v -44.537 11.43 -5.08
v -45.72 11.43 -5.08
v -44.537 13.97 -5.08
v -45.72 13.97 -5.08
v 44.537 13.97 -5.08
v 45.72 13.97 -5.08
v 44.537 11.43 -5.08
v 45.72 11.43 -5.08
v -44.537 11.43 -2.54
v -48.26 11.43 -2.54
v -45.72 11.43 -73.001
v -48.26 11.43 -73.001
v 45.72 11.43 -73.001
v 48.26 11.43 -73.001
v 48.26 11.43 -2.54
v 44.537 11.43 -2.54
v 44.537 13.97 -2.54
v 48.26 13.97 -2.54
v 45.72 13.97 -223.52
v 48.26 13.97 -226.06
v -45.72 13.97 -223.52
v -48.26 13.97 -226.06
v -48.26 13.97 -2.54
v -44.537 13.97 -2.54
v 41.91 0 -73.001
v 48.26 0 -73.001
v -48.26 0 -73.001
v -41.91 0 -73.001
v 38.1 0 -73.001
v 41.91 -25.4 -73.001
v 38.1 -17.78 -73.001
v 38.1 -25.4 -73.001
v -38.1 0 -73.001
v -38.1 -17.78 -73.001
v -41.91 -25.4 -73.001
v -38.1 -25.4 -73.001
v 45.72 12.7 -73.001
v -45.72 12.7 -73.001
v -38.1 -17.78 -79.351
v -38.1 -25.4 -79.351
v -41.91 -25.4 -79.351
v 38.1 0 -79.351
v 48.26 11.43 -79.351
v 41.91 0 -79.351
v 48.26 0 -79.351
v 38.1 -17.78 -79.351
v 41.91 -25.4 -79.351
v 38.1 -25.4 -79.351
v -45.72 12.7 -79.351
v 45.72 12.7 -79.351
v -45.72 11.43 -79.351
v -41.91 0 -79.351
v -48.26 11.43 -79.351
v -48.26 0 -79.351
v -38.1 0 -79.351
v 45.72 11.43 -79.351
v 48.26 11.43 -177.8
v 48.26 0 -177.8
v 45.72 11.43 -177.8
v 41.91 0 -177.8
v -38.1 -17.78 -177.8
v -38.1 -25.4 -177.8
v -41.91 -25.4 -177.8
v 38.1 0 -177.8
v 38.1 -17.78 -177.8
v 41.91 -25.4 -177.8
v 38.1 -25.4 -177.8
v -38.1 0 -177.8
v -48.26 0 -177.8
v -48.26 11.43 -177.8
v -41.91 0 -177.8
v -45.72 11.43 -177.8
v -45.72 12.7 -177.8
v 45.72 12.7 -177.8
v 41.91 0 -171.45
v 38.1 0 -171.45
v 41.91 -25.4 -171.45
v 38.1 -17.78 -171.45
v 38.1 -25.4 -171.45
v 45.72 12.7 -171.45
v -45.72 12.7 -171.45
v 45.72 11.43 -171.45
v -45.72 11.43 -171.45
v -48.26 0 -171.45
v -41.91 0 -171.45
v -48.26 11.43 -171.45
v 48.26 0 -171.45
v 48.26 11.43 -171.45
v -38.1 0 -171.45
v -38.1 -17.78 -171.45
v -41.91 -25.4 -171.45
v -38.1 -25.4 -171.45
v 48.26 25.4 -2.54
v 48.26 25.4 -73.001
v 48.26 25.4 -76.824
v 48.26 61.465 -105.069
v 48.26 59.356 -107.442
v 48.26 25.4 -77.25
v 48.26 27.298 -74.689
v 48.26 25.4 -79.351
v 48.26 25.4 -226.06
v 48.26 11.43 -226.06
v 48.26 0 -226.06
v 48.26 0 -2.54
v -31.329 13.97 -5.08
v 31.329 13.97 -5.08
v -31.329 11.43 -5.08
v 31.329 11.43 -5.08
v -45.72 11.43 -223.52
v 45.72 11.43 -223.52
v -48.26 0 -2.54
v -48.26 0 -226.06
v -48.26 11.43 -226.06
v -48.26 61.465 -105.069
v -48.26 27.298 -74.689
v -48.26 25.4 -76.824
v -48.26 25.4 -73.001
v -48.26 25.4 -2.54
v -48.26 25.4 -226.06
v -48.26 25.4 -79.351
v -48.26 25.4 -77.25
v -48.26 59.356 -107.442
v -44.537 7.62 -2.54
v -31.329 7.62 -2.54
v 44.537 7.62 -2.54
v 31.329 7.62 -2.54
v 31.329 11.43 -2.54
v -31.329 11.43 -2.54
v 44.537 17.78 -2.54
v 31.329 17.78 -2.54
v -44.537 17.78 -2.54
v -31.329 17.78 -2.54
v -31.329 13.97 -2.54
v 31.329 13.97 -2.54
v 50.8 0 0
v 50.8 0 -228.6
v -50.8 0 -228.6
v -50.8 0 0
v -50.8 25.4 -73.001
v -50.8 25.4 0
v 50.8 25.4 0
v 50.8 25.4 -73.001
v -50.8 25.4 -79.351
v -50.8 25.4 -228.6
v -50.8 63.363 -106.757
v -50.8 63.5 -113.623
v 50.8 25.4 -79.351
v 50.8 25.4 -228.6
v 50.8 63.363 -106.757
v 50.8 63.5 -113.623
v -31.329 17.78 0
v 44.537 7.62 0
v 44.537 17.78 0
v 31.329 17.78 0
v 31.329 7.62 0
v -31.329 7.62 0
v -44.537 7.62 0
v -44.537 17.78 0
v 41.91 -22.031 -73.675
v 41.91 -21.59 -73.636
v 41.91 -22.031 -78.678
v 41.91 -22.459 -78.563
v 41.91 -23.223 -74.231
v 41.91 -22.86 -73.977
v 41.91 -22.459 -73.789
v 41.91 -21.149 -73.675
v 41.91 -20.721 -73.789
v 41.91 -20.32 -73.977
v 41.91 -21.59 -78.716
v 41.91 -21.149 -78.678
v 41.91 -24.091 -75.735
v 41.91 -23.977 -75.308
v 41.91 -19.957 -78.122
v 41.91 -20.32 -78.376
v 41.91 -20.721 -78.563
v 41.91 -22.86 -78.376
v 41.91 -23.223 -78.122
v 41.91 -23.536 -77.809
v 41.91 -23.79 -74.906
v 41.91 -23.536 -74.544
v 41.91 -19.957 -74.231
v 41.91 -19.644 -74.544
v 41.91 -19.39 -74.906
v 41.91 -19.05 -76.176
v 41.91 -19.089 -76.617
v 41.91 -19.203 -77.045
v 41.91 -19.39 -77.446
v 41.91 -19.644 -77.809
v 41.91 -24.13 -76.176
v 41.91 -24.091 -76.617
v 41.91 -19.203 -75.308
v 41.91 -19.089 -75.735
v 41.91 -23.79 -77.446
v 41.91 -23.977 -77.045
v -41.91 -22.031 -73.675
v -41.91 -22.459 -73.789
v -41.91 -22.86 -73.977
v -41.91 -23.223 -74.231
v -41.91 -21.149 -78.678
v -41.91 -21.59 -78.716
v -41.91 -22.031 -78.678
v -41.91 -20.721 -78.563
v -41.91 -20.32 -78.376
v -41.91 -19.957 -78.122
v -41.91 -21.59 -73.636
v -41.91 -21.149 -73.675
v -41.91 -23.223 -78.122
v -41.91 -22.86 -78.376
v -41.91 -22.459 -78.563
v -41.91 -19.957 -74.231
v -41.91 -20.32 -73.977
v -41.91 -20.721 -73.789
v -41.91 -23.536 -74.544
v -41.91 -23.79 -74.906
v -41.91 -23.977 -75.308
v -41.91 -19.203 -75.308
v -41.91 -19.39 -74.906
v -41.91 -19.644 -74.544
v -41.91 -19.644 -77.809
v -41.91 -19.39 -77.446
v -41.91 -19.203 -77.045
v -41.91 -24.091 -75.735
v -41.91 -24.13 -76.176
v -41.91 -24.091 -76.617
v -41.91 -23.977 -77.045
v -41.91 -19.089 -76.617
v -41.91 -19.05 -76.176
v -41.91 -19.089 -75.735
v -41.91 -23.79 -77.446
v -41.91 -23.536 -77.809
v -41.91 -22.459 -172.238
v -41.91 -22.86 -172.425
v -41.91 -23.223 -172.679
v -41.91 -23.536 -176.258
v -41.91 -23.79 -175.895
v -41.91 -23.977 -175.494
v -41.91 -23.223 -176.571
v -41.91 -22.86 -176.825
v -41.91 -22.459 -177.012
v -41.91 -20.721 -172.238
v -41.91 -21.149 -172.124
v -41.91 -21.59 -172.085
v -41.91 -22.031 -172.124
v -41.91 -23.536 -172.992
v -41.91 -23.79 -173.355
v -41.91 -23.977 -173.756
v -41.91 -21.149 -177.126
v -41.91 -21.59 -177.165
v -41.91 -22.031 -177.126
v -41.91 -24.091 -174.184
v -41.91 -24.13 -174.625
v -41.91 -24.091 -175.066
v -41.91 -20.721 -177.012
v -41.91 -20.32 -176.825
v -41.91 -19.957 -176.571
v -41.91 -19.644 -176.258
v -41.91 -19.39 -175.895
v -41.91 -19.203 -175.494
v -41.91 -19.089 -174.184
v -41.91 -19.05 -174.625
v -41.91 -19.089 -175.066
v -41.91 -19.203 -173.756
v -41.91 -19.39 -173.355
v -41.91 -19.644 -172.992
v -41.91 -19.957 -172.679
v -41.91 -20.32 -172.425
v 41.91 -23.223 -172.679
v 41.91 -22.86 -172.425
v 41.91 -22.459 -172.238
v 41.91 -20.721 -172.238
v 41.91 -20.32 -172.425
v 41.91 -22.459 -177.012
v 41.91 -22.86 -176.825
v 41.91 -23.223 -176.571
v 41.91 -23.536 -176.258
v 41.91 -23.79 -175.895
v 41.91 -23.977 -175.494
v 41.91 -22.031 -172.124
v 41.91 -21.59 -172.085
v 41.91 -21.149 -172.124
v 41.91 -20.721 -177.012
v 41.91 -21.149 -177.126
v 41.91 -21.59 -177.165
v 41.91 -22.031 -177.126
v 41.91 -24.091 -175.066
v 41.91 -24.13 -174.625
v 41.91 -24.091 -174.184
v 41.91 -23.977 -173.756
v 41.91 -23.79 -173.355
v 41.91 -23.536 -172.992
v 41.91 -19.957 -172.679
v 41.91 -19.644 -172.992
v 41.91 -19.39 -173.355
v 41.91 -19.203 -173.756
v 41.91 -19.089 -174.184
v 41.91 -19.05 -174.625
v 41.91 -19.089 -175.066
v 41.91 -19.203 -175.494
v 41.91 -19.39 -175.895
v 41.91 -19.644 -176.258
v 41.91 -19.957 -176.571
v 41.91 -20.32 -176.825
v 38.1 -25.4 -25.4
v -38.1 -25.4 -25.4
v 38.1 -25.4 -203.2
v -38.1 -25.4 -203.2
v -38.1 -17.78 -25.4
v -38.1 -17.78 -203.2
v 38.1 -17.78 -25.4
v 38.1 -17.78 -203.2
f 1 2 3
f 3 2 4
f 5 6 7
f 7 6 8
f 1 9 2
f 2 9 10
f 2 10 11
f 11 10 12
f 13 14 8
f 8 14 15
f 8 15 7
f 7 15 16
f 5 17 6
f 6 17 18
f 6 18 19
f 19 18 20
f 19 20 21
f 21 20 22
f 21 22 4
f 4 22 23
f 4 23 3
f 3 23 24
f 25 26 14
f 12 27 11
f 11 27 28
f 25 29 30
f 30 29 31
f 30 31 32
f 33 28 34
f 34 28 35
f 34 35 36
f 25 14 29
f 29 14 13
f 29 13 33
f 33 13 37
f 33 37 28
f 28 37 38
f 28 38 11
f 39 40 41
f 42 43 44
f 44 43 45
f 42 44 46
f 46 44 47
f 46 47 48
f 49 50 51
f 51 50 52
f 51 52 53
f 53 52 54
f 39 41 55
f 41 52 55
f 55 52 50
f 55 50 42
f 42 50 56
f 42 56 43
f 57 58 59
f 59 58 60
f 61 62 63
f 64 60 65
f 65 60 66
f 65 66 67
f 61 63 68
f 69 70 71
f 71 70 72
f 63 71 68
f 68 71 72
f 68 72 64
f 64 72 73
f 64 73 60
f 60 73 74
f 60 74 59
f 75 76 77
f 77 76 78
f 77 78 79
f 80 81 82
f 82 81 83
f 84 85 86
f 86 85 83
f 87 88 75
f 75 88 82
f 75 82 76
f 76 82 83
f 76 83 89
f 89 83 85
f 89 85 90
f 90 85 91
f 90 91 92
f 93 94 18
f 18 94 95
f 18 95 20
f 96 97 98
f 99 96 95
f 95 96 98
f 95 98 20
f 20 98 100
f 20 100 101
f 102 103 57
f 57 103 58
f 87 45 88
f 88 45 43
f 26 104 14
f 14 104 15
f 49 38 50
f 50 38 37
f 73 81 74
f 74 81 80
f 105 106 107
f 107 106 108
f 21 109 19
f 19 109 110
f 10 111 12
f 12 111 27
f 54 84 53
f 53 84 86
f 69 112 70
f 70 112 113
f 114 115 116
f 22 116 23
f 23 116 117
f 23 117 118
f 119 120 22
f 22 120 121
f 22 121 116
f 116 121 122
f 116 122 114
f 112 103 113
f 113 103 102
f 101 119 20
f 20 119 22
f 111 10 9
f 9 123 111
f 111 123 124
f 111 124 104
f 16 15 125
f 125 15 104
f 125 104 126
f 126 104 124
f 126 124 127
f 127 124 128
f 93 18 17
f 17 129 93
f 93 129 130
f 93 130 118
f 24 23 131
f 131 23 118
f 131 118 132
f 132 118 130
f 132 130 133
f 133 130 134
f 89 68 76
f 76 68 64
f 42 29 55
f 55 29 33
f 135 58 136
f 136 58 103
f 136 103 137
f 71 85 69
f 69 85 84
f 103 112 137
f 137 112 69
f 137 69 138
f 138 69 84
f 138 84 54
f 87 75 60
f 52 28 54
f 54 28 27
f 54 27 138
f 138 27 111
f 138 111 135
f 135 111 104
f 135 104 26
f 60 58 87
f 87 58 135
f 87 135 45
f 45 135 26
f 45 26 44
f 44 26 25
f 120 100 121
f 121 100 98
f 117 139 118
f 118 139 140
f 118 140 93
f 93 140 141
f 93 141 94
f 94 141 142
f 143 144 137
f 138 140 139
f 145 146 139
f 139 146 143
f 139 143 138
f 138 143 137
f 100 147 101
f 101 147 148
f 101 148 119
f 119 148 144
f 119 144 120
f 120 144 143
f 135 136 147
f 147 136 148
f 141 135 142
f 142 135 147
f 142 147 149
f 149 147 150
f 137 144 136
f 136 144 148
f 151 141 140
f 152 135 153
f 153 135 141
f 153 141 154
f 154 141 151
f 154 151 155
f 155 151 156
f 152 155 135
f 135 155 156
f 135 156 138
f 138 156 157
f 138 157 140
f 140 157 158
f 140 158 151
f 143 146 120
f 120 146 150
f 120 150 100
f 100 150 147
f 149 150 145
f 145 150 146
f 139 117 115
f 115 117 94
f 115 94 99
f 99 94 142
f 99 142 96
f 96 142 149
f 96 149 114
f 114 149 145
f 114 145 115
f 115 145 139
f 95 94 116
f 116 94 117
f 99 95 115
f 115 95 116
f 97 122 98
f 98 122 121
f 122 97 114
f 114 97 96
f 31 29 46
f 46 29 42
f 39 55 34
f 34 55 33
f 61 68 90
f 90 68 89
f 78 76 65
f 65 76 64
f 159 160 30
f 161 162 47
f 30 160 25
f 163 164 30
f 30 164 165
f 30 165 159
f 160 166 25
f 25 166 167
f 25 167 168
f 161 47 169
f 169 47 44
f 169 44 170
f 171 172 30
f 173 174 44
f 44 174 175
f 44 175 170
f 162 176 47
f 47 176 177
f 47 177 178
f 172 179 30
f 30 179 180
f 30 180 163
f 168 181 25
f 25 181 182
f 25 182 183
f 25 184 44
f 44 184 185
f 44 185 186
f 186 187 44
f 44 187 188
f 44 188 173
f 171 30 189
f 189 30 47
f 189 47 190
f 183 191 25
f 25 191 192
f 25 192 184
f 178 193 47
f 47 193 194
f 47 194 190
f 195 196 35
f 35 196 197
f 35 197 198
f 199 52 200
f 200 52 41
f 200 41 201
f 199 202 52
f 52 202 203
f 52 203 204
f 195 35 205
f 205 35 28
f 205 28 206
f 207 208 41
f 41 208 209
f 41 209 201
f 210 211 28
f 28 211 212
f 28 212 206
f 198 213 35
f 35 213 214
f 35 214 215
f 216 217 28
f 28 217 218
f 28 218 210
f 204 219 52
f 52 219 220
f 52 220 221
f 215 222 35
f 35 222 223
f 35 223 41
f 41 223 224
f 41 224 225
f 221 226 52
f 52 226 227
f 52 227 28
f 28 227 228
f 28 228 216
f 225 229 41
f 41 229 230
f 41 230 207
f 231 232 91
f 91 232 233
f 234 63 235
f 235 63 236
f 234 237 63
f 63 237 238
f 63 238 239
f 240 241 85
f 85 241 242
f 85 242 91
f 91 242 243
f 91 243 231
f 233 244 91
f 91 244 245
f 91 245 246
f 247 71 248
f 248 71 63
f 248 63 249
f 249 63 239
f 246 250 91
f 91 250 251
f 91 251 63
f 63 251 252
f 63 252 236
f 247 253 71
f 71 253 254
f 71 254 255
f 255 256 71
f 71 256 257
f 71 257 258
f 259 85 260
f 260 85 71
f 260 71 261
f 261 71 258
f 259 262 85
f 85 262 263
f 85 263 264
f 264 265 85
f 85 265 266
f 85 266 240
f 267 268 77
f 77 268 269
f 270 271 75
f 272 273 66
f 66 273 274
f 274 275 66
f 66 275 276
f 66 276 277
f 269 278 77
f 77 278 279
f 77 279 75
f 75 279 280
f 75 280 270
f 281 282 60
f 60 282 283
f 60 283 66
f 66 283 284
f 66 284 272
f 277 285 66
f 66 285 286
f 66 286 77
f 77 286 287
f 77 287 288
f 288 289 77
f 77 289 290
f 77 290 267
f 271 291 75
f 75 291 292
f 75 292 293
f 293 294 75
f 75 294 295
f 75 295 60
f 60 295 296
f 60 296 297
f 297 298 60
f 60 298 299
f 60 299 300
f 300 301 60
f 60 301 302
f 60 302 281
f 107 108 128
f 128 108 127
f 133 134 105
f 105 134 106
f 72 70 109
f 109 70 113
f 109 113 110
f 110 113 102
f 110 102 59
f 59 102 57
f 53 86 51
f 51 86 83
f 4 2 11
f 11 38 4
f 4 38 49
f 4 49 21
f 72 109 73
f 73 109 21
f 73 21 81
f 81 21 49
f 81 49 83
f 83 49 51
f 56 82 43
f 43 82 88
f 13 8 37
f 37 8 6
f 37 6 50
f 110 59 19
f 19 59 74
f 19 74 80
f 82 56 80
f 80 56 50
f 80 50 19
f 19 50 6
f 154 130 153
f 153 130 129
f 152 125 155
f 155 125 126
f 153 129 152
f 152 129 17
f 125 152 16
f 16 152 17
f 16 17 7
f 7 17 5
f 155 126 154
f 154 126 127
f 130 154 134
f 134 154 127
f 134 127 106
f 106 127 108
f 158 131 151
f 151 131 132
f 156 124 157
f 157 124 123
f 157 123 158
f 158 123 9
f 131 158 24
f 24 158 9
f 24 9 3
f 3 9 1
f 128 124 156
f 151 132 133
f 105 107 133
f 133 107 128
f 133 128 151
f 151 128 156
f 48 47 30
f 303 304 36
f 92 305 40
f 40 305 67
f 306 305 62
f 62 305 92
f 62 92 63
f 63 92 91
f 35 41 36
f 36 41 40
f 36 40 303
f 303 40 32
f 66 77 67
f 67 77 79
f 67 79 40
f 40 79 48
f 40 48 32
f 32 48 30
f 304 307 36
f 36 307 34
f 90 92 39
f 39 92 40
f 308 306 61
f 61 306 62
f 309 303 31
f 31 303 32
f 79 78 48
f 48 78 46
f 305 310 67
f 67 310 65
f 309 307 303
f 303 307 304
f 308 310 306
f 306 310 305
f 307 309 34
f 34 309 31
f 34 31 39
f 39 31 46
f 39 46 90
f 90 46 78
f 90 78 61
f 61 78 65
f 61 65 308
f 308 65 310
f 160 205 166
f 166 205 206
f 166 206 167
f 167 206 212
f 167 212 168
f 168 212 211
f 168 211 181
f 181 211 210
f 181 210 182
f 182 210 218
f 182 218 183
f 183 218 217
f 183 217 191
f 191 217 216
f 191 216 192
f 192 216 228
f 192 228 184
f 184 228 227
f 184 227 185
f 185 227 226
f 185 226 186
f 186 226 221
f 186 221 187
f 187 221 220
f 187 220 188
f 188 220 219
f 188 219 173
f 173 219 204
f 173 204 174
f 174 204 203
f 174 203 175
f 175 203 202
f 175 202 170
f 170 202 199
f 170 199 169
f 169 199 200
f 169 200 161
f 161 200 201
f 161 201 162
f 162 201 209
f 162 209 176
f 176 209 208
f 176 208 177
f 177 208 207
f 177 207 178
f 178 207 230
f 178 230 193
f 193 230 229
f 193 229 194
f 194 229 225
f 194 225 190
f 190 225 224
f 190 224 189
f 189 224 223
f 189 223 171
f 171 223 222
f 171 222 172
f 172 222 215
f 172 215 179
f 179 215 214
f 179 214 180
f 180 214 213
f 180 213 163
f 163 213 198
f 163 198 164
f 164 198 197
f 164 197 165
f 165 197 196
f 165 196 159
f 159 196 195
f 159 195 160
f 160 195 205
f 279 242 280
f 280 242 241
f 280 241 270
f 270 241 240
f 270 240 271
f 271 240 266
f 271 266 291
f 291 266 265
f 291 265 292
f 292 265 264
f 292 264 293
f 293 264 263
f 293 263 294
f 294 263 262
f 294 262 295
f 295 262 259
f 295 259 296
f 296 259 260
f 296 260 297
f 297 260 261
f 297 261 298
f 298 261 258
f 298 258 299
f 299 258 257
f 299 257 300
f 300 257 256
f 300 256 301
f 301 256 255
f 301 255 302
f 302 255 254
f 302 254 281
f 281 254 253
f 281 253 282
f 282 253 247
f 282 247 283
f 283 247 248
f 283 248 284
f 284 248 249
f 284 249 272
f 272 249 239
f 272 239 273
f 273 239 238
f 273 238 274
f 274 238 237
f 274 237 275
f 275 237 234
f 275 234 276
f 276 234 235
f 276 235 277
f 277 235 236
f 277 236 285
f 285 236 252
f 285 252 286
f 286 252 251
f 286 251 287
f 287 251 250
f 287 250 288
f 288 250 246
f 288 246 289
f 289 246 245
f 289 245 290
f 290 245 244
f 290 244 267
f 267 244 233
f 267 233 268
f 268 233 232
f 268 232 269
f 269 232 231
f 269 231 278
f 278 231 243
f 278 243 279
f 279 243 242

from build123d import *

# Parameters (mm, degrees)
SKETCH1_W            = 101.6
SKETCH1_H            = 50.8
BOSS_EXTRUDE1_DEPTH  = 228.6
SKETCH2_W            = 96.52
SKETCH2_H            = 172.72
CUT_EXTRUDE1_DEPTH   = 50.8
BOSS_EXTRUDE2_DEPTH  = 50.8
BOSS_EXTRUDE3_DEPTH  = 101.6
SKETCH13_W           = 96.52
SKETCH13_H           = 25.4
CUT_EXTRUDE2_DEPTH   = 50.8
SKETCH14_W           = 96.52
SKETCH14_H           = 25.4
CUT_EXTRUDE3_DEPTH   = 50.8
SKETCH15_W           = 96.52
SKETCH15_H           = 50.8
CUT_EXTRUDE6_DEPTH   = 6.35
SKETCH16_W           = 96.52
SKETCH16_H           = 45.72
CUT_EXTRUDE7_DEPTH   = 3.175
SKETCH17_W           = 101.6
SKETCH17_H           = 25.4
CUT_EXTRUDE8_DEPTH   = 228.6
SKETCH19_W           = 6.35
SKETCH19_H           = 12.7
BOSS_EXTRUDE4_DEPTH  = 96.52
SKETCH20_W           = 6.35
SKETCH20_H           = 12.7
BOSS_EXTRUDE5_DEPTH  = 101.6
SKETCH24_W           = 12.7
SKETCH24_H           = 6.35
BOSS_EXTRUDE8_DEPTH  = 19.05
SKETCH25_W           = 12.7
SKETCH25_H           = 6.35
BOSS_EXTRUDE9_DEPTH  = 19.05
SKETCH26_W           = 12.7
SKETCH26_H           = 6.35
BOSS_EXTRUDE10_DEPTH = 19.05
SKETCH27_W           = 12.7
SKETCH27_H           = 6.35
BOSS_EXTRUDE11_DEPTH = 19.05
SKETCH28_W           = 8.89
SKETCH28_H           = 19.05
CUT_EXTRUDE9_DEPTH   = 6.35
SKETCH29_W           = 8.89
SKETCH29_H           = 19.05
CUT_EXTRUDE10_DEPTH  = 6.35
SKETCH30_W           = 8.89
SKETCH30_H           = 19.05
CUT_EXTRUDE11_DEPTH  = 6.35
SKETCH31_W           = 8.89
SKETCH31_H           = 19.05
CUT_EXTRUDE12_DEPTH  = 6.35
SKETCH33_W           = 96.52
SKETCH33_H           = 2.54
BOSS_EXTRUDE13_DEPTH = 2.54
SKETCH34_W           = 96.52
SKETCH34_H           = 2.54
BOSS_EXTRUDE17_DEPTH = 2.54
SKETCH36_W           = 218.44
SKETCH36_H           = 2.54
BOSS_EXTRUDE18_DEPTH = 2.54
SKETCH37_W           = 218.44
SKETCH37_H           = 2.54
BOSS_EXTRUDE19_DEPTH = 2.54
SKETCH42_W           = 6.35
SKETCH42_H           = 6.35
CUT_EXTRUDE16_DEPTH  = 5.08
SKETCH45_W           = 13.208
SKETCH45_H           = 10.16
CUT_EXTRUDE19_DEPTH  = 6.35
SKETCH50_W           = 6.35
SKETCH50_H           = 6.35
BOSS_EXTRUDE20_DEPTH = 3.81
SKETCH51_W           = 6.35
SKETCH51_H           = 6.35
BOSS_EXTRUDE21_DEPTH = 3.81
SKETCH52_W           = 6.35
SKETCH52_H           = 6.35
BOSS_EXTRUDE22_DEPTH = 3.81
SKETCH53_W           = 6.35
SKETCH53_H           = 6.35
BOSS_EXTRUDE23_DEPTH = 3.81
SKETCH54_W           = 6.35
SKETCH54_H           = 6.35
BOSS_EXTRUDE24_DEPTH = 3.81
SKETCH55_W           = 76.2
SKETCH55_H           = 177.8
BOSS_EXTRUDE25_DEPTH = 7.62
SKETCH56_R           = 2.54
CUT_EXTRUDE20_DEPTH  = 83.82
SKETCH57_R           = 2.54
CUT_EXTRUDE21_DEPTH  = 83.82


with BuildPart() as part:
    # Sketch1 → Boss-Extrude1 (new body)
    with BuildSketch(Plane.XY):
        Rectangle(SKETCH1_W, SKETCH1_H)
    extrude(amount=-BOSS_EXTRUDE1_DEPTH)

    # Sketch2 → Cut-Extrude1 (cut)
    with BuildSketch(Plane(origin=(0, 25.4, 0), x_dir=(1, 0, 0), z_dir=(0, 1, 0))):
        with Locations((0, 114.3)):
            Rectangle(SKETCH2_W, SKETCH2_H)
    extrude(amount=-CUT_EXTRUDE1_DEPTH, mode=Mode.SUBTRACT)

    # Sketch3 → Boss-Extrude2 (add)
    with BuildSketch(Plane(origin=(0, 25.4, 0), x_dir=(1, 0, 0), z_dir=(0, 1, 0))):
        Polygon((48.26, 73.001295984), (48.26, 79.351295984), (-48.26, 79.351295984), (-48.26, 73.001295984), (0, 73.001295984), align=None)
    extrude(amount=-BOSS_EXTRUDE2_DEPTH)

    # Sketch11 → Boss-Extrude3 (add)
    with BuildSketch(Plane.ZY.offset(50.8)):
        Polygon((-79.351295984, 25.4), (-113.622558301, 63.5), (-106.756614843, 63.363382999), (-73.001295984, 25.4), align=None)
    extrude(amount=-BOSS_EXTRUDE3_DEPTH)

    # Sketch13 → Cut-Extrude2 (cut)
    with BuildSketch(Plane(origin=(0, 25.4, 0), x_dir=(1, 0, 0), z_dir=(0, 1, 0))):
        with Locations((0, 213.36)):
            Rectangle(SKETCH13_W, SKETCH13_H)
    extrude(amount=-CUT_EXTRUDE2_DEPTH, mode=Mode.SUBTRACT)

    # Sketch14 → Cut-Extrude3 (cut)
    with BuildSketch(Plane(origin=(0, 25.4, 0), x_dir=(1, 0, 0), z_dir=(0, 1, 0))):
        with Locations((0, 15.24)):
            Rectangle(SKETCH14_W, SKETCH14_H)
    extrude(amount=-CUT_EXTRUDE3_DEPTH, mode=Mode.SUBTRACT)

    # Sketch15 → Cut-Extrude6 (cut)
    with BuildSketch(Plane.XY.offset(-73.001295984)):
        Rectangle(SKETCH15_W, SKETCH15_H)
    extrude(amount=-CUT_EXTRUDE6_DEPTH, mode=Mode.SUBTRACT)

    # Sketch16 → Cut-Extrude7 (cut)
    with BuildSketch(Plane(origin=(0, -25.035409247, -28.156416881), x_dir=(1, 0, 0), z_dir=(0, 0.664474781, 0.747310689))):
        with Locations((0, 92.889211639)):
            Rectangle(SKETCH16_W, SKETCH16_H)
    extrude(amount=-CUT_EXTRUDE7_DEPTH, mode=Mode.SUBTRACT)

    # Sketch17 → Cut-Extrude8 (cut)
    with BuildSketch(Plane.XY):
        with Locations((0, -12.7)):
            Rectangle(SKETCH17_W, SKETCH17_H)
    extrude(amount=-CUT_EXTRUDE8_DEPTH, mode=Mode.SUBTRACT)

    # Sketch19 → Boss-Extrude4 (add)
    with BuildSketch(Plane.ZY.offset(-48.26)):
        with Locations((-76.176295984, 6.35)):
            Rectangle(SKETCH19_W, SKETCH19_H)
    extrude(amount=BOSS_EXTRUDE4_DEPTH)

    # Sketch20 → Boss-Extrude5 (add)
    with BuildSketch(Plane.ZY.offset(50.8)):
        with Locations((-174.625, 6.35)):
            Rectangle(SKETCH20_W, SKETCH20_H)
    extrude(amount=-BOSS_EXTRUDE5_DEPTH)

    # Sketch24 → Boss-Extrude8 (add)
    with BuildSketch(Plane.XZ):
        with Locations((44.45, -76.176295984)):
            Rectangle(SKETCH24_W, SKETCH24_H)
    extrude(amount=BOSS_EXTRUDE8_DEPTH)

    # Sketch25 → Boss-Extrude9 (add)
    with BuildSketch(Plane.XZ):
        with Locations((-44.45, -76.176295984)):
            Rectangle(SKETCH25_W, SKETCH25_H)
    extrude(amount=BOSS_EXTRUDE9_DEPTH)

    # Sketch26 → Boss-Extrude10 (add)
    with BuildSketch(Plane.XZ):
        with Locations((-44.45, -174.625)):
            Rectangle(SKETCH26_W, SKETCH26_H)
    extrude(amount=BOSS_EXTRUDE10_DEPTH)

    # Sketch27 → Boss-Extrude11 (add)
    with BuildSketch(Plane.XZ):
        with Locations((44.45, -174.625)):
            Rectangle(SKETCH27_W, SKETCH27_H)
    extrude(amount=BOSS_EXTRUDE11_DEPTH)

    # Sketch28 → Cut-Extrude9 (cut)
    with BuildSketch(Plane.XY.offset(-73.001295984)):
        with Locations((46.355, -9.525)):
            Rectangle(SKETCH28_W, SKETCH28_H)
    extrude(amount=-CUT_EXTRUDE9_DEPTH, mode=Mode.SUBTRACT)

    # Sketch29 → Cut-Extrude10 (cut)
    with BuildSketch(Plane.XY.offset(-73.001295984)):
        with Locations((-46.355, -9.525)):
            Rectangle(SKETCH29_W, SKETCH29_H)
    extrude(amount=-CUT_EXTRUDE10_DEPTH, mode=Mode.SUBTRACT)

    # Sketch30 → Cut-Extrude11 (cut)
    with BuildSketch(Plane.XY.offset(-171.45)):
        with Locations((-46.355, -9.525)):
            Rectangle(SKETCH30_W, SKETCH30_H)
    extrude(amount=-CUT_EXTRUDE11_DEPTH, mode=Mode.SUBTRACT)

    # Sketch31 → Cut-Extrude12 (cut)
    with BuildSketch(Plane.XY.offset(-171.45)):
        with Locations((46.355, -9.525)):
            Rectangle(SKETCH31_W, SKETCH31_H)
    extrude(amount=-CUT_EXTRUDE12_DEPTH, mode=Mode.SUBTRACT)

    # Sketch33 → Boss-Extrude13 (add)
    with BuildSketch(Plane(origin=(0, 0, -2.54), x_dir=(-1, 0, 0), z_dir=(0, 0, -1))):
        with Locations((0, 12.7)):
            Rectangle(SKETCH33_W, SKETCH33_H)
    extrude(amount=BOSS_EXTRUDE13_DEPTH)

    # Sketch34 → Boss-Extrude17 (add)
    with BuildSketch(Plane.XY.offset(-226.06)):
        with Locations((0, 12.7)):
            Rectangle(SKETCH34_W, SKETCH34_H)
    extrude(amount=BOSS_EXTRUDE17_DEPTH)

    # Sketch36 → Boss-Extrude18 (add)
    with BuildSketch(Plane(origin=(-48.26, 0, 0), x_dir=(0, 0, -1), z_dir=(1, 0, 0))):
        with Locations((114.3, 12.7)):
            Rectangle(SKETCH36_W, SKETCH36_H)
    extrude(amount=BOSS_EXTRUDE18_DEPTH)

    # Sketch37 → Boss-Extrude19 (add)
    with BuildSketch(Plane.ZY.offset(-48.26)):
        with Locations((-114.3, 12.7)):
            Rectangle(SKETCH37_W, SKETCH37_H)
    extrude(amount=BOSS_EXTRUDE19_DEPTH)

    # Sketch42 → Cut-Extrude16 (cut)
    with BuildSketch(Plane.ZY.offset(41.91)):
        with Locations((-76.176295984, -15.875)):
            Rectangle(SKETCH42_W, SKETCH42_H)
    extrude(amount=-CUT_EXTRUDE16_DEPTH, mode=Mode.SUBTRACT)

    # Sketch45 → Cut-Extrude19 (cut)
    with BuildSketch(Plane.XY):
        with Locations((37.933039121, 12.7)):
            Rectangle(SKETCH45_W, SKETCH45_H)
        with Locations((-37.933039121, 12.7)):
            Rectangle(SKETCH45_W, SKETCH45_H)
    extrude(amount=-CUT_EXTRUDE19_DEPTH, mode=Mode.SUBTRACT)

    # Sketch50 → Boss-Extrude20 (add)
    with BuildSketch(Plane.ZY.offset(41.91)):
        with Locations((-76.176295984, -15.875)):
            Rectangle(SKETCH50_W, SKETCH50_H)
    extrude(amount=-BOSS_EXTRUDE20_DEPTH)

    # Sketch51 → Boss-Extrude21 (add)
    with BuildSketch(Plane.ZY.offset(41.91)):
        with Locations((-76.176295984, -22.225)):
            Rectangle(SKETCH51_W, SKETCH51_H)
    extrude(amount=-BOSS_EXTRUDE21_DEPTH)

    # Sketch52 → Boss-Extrude22 (add)
    with BuildSketch(Plane.ZY.offset(41.91)):
        with Locations((-174.625, -22.225)):
            Rectangle(SKETCH52_W, SKETCH52_H)
    extrude(amount=-BOSS_EXTRUDE22_DEPTH)

    # Sketch53 → Boss-Extrude23 (add)
    with BuildSketch(Plane(origin=(41.91, 0, 0), x_dir=(0, 0, -1), z_dir=(1, 0, 0))):
        with Locations((76.176295984, -22.225)):
            Rectangle(SKETCH53_W, SKETCH53_H)
    extrude(amount=-BOSS_EXTRUDE23_DEPTH)

    # Sketch54 → Boss-Extrude24 (add)
    with BuildSketch(Plane(origin=(41.91, 0, 0), x_dir=(0, 0, -1), z_dir=(1, 0, 0))):
        with Locations((174.625, -22.225)):
            Rectangle(SKETCH54_W, SKETCH54_H)
    extrude(amount=-BOSS_EXTRUDE24_DEPTH)

    # Sketch55 → Boss-Extrude25 (add)
    with BuildSketch(Plane.XZ.offset(25.4)):
        with Locations((0, -114.3)):
            Rectangle(SKETCH55_W, SKETCH55_H)
    extrude(amount=-BOSS_EXTRUDE25_DEPTH)

    # Sketch56 → Cut-Extrude20 (cut)
    with BuildSketch(Plane.ZY.offset(41.91)):
        with Locations((-76.176295984, -21.59)):
            Circle(SKETCH56_R)
    extrude(amount=-CUT_EXTRUDE20_DEPTH, mode=Mode.SUBTRACT)

    # Sketch57 → Cut-Extrude21 (cut)
    with BuildSketch(Plane.ZY.offset(41.91)):
        with Locations((-174.625, -21.59)):
            Circle(SKETCH57_R)
    extrude(amount=-CUT_EXTRUDE21_DEPTH, mode=Mode.SUBTRACT)


solid = part.part
